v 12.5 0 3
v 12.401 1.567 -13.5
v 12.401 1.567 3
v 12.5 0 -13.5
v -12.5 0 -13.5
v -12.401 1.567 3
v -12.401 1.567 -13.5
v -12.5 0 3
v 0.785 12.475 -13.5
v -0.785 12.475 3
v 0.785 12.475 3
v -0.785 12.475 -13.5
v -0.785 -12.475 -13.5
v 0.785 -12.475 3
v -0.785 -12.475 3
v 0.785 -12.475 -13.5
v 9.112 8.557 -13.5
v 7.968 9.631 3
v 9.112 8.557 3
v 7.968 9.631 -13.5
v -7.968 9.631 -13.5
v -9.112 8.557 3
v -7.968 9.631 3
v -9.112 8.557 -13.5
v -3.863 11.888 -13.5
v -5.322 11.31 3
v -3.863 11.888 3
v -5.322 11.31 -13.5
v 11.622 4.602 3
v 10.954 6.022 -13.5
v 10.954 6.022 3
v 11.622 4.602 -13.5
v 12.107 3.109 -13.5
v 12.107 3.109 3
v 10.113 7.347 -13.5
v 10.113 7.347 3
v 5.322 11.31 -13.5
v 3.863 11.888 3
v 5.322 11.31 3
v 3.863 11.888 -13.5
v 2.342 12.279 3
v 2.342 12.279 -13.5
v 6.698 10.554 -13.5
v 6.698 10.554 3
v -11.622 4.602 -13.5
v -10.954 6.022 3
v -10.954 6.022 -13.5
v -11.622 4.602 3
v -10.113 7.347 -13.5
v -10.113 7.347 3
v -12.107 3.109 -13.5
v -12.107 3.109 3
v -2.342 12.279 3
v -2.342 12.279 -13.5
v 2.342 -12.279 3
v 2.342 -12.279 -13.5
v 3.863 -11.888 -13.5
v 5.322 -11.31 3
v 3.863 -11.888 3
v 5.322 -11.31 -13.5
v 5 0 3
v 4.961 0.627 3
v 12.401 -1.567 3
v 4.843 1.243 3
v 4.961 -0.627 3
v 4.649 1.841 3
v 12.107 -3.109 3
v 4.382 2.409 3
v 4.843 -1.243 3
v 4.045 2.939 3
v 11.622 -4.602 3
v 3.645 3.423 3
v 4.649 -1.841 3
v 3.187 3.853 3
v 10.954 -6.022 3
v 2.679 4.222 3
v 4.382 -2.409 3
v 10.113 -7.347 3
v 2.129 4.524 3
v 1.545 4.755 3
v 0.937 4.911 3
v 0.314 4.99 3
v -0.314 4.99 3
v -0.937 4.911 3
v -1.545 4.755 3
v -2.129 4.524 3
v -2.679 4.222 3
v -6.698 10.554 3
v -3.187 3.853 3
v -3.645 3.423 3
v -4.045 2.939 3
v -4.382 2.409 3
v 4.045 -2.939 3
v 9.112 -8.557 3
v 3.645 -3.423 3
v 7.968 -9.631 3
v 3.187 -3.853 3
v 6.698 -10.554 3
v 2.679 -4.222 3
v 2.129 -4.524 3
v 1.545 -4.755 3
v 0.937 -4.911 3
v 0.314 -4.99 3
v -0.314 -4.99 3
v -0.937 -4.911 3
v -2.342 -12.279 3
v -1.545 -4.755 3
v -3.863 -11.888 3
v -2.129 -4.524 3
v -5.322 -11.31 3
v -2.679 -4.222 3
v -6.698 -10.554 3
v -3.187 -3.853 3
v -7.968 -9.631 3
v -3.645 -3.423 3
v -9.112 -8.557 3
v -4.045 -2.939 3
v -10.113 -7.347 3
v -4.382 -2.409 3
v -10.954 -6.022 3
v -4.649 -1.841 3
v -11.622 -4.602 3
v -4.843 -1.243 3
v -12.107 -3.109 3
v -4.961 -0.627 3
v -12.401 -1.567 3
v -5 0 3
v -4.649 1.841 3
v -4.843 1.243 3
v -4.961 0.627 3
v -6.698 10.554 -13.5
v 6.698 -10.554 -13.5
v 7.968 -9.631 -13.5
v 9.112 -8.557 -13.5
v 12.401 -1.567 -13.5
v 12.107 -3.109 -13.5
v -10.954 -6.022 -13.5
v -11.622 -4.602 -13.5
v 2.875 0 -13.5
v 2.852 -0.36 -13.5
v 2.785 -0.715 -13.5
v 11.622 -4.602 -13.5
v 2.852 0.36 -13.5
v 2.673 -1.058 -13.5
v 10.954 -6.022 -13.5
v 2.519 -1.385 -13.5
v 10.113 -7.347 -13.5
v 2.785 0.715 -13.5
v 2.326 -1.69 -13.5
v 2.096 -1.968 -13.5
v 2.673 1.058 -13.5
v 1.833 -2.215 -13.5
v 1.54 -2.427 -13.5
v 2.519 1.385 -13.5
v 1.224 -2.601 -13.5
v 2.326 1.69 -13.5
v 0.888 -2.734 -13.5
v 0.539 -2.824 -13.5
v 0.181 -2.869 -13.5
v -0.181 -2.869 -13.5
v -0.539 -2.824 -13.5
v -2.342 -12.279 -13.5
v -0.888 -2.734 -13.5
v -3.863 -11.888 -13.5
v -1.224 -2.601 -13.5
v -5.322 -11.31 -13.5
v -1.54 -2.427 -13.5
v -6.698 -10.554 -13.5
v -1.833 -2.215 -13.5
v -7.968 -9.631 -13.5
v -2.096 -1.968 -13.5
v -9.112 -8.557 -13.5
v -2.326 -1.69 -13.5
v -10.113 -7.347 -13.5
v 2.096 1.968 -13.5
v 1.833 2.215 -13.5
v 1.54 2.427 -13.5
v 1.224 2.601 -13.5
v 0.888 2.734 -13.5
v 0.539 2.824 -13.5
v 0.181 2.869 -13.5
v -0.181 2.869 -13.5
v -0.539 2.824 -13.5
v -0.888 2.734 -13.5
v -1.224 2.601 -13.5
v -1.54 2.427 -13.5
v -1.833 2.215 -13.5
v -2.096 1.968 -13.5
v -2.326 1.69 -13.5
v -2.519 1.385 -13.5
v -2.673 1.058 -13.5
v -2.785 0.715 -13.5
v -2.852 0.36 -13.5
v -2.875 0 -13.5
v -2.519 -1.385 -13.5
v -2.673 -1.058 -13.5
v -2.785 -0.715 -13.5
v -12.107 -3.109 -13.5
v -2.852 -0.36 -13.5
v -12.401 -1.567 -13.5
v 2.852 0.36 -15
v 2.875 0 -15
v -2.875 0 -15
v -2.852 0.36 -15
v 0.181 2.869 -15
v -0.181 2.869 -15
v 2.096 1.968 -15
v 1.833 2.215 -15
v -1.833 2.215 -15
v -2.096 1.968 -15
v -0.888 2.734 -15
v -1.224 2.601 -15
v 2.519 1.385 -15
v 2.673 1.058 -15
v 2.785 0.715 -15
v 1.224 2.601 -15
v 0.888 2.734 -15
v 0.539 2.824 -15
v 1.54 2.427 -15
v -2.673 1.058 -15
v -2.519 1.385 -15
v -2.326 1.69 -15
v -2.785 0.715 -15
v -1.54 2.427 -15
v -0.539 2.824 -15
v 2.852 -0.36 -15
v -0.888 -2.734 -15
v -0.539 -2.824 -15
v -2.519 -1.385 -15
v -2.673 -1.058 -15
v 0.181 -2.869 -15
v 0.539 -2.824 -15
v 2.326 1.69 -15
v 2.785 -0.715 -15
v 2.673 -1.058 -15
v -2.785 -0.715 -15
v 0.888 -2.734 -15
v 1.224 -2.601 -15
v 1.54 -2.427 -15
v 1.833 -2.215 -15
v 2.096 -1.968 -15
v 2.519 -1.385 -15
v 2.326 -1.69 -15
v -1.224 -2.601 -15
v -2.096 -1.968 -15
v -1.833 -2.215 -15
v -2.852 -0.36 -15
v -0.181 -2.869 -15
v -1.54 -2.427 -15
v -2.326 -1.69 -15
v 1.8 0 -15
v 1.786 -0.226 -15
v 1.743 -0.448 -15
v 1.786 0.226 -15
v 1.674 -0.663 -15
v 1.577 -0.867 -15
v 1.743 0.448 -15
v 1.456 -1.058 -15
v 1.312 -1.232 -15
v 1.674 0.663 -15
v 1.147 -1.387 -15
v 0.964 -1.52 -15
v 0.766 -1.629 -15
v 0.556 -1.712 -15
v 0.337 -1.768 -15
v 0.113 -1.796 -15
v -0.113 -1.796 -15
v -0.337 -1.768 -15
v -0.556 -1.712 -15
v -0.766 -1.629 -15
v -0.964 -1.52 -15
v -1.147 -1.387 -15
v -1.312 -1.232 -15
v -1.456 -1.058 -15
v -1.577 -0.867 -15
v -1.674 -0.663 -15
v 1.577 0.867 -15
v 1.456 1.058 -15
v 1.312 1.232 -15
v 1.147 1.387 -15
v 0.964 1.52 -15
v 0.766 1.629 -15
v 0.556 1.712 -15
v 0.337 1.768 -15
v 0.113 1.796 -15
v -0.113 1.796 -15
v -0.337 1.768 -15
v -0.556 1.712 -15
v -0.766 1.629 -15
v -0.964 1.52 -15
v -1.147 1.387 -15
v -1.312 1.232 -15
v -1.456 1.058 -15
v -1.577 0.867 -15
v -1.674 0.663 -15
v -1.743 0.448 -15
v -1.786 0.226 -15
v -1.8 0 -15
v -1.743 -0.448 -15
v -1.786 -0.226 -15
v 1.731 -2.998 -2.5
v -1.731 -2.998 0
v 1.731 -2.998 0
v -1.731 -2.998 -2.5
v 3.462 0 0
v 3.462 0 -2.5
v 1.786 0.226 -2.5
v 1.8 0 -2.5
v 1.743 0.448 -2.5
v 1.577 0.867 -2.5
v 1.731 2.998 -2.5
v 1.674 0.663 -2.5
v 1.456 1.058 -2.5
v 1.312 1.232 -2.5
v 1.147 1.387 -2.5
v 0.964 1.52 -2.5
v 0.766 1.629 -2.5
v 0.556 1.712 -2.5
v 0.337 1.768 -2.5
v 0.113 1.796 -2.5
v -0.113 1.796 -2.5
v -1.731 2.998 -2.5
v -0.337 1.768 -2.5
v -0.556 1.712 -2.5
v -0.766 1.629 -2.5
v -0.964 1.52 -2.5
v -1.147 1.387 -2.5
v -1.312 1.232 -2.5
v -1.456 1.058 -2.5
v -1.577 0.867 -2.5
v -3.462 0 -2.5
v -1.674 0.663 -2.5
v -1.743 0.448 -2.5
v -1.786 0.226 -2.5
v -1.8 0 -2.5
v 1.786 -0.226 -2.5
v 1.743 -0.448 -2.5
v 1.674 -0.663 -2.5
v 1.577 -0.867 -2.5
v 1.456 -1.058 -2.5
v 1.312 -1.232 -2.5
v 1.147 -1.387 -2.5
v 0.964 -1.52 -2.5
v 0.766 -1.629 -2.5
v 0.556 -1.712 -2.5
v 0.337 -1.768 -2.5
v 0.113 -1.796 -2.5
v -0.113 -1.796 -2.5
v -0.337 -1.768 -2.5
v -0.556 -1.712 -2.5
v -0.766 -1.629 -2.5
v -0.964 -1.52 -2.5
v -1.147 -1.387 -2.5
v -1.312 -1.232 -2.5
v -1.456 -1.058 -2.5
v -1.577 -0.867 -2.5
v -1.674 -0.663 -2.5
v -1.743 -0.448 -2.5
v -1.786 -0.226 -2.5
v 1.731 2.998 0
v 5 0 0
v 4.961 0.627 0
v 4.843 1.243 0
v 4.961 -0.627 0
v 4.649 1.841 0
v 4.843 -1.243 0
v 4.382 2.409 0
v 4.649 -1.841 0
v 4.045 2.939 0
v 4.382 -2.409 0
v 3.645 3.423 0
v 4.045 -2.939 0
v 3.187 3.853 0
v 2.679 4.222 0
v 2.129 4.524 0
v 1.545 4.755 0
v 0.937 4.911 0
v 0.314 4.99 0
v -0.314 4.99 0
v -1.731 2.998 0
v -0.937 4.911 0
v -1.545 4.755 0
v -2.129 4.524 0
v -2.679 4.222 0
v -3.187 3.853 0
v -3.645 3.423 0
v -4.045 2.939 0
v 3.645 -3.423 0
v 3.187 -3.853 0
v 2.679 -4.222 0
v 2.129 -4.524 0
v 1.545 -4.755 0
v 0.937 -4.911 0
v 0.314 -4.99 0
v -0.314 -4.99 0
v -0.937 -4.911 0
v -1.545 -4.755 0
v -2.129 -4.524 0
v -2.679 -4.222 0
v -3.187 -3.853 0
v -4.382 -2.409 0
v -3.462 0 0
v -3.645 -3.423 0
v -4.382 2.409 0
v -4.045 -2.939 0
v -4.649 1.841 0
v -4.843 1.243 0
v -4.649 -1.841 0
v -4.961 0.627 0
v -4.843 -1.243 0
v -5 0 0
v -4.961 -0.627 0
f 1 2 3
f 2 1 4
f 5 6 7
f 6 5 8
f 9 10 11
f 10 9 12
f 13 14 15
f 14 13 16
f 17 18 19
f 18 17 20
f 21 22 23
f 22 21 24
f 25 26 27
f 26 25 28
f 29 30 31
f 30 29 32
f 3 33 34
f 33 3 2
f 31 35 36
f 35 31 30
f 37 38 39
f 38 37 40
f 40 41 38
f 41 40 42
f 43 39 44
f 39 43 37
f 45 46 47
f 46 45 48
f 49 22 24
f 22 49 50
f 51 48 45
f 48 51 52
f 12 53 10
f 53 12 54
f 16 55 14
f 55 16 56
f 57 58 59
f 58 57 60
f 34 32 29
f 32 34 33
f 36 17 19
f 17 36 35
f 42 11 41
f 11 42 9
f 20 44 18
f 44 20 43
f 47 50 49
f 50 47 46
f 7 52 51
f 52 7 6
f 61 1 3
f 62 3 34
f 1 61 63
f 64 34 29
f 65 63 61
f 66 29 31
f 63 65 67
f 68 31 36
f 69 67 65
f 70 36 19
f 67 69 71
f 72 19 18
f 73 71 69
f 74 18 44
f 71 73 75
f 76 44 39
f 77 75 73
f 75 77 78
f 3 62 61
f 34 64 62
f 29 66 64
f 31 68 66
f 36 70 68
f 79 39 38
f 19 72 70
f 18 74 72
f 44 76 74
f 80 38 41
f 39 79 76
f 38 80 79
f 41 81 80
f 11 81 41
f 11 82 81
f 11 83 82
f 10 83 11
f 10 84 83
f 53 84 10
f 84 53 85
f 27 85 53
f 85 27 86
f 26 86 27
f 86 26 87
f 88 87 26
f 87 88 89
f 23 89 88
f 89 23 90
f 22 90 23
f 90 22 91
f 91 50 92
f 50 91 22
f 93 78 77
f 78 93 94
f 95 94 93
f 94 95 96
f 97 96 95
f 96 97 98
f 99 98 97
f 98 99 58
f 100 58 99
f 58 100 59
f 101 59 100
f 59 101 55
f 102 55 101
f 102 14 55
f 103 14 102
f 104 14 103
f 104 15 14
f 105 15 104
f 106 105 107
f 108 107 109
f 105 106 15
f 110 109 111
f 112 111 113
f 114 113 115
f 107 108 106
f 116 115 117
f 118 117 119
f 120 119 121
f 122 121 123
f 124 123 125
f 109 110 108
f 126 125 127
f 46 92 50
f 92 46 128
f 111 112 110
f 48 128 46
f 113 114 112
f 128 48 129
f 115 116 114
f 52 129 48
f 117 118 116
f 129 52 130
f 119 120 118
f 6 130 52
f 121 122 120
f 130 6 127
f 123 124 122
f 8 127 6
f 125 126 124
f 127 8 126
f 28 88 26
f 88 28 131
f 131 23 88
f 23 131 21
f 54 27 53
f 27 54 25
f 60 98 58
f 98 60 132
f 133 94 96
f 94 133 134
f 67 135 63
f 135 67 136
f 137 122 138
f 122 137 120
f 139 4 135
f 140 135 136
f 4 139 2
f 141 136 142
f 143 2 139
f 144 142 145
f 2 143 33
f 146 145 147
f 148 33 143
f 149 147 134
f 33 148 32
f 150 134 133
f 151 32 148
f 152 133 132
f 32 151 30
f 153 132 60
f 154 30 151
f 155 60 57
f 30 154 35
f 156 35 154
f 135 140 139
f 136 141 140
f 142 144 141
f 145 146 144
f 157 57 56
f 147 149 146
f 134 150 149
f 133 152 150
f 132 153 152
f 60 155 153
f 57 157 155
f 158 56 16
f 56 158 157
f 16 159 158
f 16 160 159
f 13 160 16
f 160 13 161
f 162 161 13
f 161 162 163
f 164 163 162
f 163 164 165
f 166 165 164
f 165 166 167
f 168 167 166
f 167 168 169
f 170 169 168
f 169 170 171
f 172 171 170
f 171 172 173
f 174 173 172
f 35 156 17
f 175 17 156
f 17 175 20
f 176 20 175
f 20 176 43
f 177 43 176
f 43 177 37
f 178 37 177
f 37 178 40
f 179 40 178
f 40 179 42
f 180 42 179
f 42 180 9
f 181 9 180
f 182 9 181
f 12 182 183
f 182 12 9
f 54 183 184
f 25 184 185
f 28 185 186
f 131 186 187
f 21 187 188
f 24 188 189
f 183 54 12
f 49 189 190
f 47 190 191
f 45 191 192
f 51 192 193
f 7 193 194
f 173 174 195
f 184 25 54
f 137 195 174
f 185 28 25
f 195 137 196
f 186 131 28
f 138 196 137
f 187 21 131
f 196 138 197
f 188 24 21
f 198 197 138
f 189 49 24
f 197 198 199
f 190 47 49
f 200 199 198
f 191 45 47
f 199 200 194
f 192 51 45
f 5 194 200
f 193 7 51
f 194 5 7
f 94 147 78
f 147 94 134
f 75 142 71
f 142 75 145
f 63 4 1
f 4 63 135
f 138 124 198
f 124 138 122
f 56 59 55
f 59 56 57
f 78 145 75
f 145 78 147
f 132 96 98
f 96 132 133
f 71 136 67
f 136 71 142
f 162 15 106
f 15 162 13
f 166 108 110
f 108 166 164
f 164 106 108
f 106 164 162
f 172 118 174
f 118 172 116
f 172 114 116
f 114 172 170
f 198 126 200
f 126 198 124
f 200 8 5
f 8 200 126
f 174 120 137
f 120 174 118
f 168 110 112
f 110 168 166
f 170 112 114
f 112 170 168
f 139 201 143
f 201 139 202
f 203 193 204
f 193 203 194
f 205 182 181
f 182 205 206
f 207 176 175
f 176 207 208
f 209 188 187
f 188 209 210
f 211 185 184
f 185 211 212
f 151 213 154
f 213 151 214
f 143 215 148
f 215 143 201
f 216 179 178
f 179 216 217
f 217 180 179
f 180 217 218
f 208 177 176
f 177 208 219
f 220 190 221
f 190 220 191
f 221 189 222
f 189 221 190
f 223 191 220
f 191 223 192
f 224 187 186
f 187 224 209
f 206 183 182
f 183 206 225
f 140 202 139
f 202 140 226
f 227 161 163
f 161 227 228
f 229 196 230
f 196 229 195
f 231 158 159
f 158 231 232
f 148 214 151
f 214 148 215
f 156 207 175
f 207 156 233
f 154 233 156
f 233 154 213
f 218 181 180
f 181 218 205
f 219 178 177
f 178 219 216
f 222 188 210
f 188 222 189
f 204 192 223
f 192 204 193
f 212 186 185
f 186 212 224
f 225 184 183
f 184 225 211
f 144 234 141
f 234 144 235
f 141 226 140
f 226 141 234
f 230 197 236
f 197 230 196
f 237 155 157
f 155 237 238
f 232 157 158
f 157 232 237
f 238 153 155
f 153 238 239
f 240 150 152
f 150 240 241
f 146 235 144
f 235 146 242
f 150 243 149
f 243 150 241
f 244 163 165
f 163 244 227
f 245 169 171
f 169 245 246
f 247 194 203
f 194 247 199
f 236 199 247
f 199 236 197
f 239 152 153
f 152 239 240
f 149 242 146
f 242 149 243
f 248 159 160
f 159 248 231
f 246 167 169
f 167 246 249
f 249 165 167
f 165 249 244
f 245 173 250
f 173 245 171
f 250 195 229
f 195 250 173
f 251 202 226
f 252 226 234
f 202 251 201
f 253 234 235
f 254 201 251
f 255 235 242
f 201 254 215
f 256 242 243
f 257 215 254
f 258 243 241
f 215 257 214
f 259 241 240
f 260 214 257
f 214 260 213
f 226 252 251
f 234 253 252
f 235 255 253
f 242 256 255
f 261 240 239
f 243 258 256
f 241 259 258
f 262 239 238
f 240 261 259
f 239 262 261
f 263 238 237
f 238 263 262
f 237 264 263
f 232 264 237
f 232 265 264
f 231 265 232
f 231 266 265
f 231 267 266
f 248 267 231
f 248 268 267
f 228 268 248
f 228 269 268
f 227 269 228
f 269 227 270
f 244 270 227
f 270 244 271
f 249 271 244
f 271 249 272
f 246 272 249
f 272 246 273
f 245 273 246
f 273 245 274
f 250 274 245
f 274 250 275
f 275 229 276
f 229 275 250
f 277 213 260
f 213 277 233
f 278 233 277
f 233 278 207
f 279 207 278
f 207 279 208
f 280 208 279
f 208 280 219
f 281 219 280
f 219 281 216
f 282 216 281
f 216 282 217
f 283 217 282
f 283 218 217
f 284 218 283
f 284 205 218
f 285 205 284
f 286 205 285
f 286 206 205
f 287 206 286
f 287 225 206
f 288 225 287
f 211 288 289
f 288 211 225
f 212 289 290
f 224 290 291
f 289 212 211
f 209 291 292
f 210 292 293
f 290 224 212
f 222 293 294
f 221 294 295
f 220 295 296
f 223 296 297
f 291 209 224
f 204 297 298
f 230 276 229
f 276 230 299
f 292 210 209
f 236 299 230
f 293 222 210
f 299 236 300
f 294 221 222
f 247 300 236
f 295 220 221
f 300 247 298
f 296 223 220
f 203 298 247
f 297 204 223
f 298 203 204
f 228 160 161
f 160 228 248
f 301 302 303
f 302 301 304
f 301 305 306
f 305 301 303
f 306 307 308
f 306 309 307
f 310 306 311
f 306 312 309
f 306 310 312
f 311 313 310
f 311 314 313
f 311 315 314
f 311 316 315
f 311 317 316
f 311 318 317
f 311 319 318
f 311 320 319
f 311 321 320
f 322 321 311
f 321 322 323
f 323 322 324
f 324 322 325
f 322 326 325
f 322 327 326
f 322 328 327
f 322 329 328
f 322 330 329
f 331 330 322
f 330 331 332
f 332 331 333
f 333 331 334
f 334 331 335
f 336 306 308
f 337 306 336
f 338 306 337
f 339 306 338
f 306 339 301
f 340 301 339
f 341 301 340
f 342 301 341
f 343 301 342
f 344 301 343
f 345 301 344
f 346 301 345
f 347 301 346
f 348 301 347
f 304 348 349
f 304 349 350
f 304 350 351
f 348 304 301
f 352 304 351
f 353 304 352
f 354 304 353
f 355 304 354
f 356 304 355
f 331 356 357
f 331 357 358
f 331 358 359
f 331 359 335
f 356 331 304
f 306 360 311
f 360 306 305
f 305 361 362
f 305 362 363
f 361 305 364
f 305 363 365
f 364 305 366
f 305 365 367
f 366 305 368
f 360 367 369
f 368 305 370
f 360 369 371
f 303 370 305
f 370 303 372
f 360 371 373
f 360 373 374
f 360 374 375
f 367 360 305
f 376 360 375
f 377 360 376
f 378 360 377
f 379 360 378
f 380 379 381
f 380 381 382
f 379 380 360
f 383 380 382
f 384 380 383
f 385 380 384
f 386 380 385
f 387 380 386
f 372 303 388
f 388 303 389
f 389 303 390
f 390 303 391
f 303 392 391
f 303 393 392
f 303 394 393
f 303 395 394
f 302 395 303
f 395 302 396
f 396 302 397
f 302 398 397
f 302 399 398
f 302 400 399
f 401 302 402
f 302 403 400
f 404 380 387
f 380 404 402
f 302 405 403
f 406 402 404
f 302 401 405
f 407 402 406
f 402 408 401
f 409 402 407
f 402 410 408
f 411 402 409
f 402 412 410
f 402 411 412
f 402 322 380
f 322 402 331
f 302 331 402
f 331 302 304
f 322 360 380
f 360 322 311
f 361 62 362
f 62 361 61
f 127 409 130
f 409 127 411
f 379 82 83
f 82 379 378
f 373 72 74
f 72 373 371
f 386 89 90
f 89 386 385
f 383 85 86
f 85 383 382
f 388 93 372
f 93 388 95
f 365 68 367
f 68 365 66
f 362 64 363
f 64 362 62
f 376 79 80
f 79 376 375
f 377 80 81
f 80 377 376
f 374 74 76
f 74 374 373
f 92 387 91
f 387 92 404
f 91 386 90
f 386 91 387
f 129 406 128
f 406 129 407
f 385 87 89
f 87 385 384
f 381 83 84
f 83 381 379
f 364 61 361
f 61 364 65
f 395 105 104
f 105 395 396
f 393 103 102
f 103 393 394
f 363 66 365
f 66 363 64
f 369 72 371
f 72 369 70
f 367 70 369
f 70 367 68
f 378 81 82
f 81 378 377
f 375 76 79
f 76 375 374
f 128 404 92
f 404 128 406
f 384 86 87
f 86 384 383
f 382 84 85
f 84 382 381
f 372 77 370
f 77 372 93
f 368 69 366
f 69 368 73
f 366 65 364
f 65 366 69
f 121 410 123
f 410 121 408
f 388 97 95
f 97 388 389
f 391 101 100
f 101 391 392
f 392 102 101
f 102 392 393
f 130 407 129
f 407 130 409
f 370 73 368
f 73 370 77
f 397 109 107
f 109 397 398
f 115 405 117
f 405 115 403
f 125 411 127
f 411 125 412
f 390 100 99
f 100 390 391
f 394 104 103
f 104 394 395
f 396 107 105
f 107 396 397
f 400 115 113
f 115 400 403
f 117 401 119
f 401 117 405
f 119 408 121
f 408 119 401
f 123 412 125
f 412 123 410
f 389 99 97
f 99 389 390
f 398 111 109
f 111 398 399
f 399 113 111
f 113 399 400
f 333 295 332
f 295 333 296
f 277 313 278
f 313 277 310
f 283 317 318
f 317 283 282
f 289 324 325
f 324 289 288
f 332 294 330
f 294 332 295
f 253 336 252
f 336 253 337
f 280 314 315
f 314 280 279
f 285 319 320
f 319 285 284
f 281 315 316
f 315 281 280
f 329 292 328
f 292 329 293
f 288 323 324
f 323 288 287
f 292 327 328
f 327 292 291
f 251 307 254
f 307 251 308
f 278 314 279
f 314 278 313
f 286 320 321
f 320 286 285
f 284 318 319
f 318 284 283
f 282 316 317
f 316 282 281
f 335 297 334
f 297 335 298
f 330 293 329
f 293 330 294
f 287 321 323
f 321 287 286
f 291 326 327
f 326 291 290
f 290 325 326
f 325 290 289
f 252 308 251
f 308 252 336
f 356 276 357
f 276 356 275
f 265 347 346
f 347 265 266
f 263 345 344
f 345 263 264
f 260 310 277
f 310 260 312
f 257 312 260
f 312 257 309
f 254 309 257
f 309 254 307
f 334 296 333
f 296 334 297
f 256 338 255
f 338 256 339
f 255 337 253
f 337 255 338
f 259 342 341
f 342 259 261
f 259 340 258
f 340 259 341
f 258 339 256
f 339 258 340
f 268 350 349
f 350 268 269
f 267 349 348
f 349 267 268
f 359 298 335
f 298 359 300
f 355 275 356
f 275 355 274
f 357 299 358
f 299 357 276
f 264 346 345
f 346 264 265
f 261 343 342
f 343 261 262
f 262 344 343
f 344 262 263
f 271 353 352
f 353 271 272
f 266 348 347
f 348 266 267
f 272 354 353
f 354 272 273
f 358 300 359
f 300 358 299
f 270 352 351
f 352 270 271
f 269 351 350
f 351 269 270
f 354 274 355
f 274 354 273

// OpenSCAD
$fn = 50;


difference() {
	union() {
		translate(v = [0, 0, -13.5000000000]) {
			cylinder(h = 16.5000000000, r = 12.5000000000);
		}
		#translate(v = [0, 0, -15.0000000000]) {
			cylinder(h = 15, r = 2.8750000000);
		}
	}
	union() {
		translate(v = [0, 0, 0]) {
			rotate(a = [0, 0, 0]) {
				difference() {
					union() {
						translate(v = [0, 0, -2.5000000000]) {
							linear_extrude(height = 2.5000000000) {
								polygon(points = [[3.4620000000, 0.0000000000], [1.7310000000, 2.9981799479], [-1.7310000000, 2.9981799479], [-3.4620000000, 0.0000000000], [-1.7310000000, -2.9981799479], [1.7310000000, -2.9981799479]]);
							}
						}
					}
					union();
				}
			}
		}
		#cylinder(h = 3, r = 5.0000000000);
		#translate(v = [0, 0, -100.0000000000]) {
			cylinder(h = 200, r = 1.8000000000);
		}
	}
}
